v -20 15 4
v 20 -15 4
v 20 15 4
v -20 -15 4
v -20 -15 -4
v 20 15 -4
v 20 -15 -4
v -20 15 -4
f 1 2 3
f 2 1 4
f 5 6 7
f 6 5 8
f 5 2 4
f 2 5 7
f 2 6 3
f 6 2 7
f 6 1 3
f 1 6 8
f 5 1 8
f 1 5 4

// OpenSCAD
// Rectangular solid box with dimensions 40 mm × 30 mm × 8 mm
// Centered at origin (0,0,0)

difference() {
    cube([40, 30, 8], center = true);  // Main body of the box
}
